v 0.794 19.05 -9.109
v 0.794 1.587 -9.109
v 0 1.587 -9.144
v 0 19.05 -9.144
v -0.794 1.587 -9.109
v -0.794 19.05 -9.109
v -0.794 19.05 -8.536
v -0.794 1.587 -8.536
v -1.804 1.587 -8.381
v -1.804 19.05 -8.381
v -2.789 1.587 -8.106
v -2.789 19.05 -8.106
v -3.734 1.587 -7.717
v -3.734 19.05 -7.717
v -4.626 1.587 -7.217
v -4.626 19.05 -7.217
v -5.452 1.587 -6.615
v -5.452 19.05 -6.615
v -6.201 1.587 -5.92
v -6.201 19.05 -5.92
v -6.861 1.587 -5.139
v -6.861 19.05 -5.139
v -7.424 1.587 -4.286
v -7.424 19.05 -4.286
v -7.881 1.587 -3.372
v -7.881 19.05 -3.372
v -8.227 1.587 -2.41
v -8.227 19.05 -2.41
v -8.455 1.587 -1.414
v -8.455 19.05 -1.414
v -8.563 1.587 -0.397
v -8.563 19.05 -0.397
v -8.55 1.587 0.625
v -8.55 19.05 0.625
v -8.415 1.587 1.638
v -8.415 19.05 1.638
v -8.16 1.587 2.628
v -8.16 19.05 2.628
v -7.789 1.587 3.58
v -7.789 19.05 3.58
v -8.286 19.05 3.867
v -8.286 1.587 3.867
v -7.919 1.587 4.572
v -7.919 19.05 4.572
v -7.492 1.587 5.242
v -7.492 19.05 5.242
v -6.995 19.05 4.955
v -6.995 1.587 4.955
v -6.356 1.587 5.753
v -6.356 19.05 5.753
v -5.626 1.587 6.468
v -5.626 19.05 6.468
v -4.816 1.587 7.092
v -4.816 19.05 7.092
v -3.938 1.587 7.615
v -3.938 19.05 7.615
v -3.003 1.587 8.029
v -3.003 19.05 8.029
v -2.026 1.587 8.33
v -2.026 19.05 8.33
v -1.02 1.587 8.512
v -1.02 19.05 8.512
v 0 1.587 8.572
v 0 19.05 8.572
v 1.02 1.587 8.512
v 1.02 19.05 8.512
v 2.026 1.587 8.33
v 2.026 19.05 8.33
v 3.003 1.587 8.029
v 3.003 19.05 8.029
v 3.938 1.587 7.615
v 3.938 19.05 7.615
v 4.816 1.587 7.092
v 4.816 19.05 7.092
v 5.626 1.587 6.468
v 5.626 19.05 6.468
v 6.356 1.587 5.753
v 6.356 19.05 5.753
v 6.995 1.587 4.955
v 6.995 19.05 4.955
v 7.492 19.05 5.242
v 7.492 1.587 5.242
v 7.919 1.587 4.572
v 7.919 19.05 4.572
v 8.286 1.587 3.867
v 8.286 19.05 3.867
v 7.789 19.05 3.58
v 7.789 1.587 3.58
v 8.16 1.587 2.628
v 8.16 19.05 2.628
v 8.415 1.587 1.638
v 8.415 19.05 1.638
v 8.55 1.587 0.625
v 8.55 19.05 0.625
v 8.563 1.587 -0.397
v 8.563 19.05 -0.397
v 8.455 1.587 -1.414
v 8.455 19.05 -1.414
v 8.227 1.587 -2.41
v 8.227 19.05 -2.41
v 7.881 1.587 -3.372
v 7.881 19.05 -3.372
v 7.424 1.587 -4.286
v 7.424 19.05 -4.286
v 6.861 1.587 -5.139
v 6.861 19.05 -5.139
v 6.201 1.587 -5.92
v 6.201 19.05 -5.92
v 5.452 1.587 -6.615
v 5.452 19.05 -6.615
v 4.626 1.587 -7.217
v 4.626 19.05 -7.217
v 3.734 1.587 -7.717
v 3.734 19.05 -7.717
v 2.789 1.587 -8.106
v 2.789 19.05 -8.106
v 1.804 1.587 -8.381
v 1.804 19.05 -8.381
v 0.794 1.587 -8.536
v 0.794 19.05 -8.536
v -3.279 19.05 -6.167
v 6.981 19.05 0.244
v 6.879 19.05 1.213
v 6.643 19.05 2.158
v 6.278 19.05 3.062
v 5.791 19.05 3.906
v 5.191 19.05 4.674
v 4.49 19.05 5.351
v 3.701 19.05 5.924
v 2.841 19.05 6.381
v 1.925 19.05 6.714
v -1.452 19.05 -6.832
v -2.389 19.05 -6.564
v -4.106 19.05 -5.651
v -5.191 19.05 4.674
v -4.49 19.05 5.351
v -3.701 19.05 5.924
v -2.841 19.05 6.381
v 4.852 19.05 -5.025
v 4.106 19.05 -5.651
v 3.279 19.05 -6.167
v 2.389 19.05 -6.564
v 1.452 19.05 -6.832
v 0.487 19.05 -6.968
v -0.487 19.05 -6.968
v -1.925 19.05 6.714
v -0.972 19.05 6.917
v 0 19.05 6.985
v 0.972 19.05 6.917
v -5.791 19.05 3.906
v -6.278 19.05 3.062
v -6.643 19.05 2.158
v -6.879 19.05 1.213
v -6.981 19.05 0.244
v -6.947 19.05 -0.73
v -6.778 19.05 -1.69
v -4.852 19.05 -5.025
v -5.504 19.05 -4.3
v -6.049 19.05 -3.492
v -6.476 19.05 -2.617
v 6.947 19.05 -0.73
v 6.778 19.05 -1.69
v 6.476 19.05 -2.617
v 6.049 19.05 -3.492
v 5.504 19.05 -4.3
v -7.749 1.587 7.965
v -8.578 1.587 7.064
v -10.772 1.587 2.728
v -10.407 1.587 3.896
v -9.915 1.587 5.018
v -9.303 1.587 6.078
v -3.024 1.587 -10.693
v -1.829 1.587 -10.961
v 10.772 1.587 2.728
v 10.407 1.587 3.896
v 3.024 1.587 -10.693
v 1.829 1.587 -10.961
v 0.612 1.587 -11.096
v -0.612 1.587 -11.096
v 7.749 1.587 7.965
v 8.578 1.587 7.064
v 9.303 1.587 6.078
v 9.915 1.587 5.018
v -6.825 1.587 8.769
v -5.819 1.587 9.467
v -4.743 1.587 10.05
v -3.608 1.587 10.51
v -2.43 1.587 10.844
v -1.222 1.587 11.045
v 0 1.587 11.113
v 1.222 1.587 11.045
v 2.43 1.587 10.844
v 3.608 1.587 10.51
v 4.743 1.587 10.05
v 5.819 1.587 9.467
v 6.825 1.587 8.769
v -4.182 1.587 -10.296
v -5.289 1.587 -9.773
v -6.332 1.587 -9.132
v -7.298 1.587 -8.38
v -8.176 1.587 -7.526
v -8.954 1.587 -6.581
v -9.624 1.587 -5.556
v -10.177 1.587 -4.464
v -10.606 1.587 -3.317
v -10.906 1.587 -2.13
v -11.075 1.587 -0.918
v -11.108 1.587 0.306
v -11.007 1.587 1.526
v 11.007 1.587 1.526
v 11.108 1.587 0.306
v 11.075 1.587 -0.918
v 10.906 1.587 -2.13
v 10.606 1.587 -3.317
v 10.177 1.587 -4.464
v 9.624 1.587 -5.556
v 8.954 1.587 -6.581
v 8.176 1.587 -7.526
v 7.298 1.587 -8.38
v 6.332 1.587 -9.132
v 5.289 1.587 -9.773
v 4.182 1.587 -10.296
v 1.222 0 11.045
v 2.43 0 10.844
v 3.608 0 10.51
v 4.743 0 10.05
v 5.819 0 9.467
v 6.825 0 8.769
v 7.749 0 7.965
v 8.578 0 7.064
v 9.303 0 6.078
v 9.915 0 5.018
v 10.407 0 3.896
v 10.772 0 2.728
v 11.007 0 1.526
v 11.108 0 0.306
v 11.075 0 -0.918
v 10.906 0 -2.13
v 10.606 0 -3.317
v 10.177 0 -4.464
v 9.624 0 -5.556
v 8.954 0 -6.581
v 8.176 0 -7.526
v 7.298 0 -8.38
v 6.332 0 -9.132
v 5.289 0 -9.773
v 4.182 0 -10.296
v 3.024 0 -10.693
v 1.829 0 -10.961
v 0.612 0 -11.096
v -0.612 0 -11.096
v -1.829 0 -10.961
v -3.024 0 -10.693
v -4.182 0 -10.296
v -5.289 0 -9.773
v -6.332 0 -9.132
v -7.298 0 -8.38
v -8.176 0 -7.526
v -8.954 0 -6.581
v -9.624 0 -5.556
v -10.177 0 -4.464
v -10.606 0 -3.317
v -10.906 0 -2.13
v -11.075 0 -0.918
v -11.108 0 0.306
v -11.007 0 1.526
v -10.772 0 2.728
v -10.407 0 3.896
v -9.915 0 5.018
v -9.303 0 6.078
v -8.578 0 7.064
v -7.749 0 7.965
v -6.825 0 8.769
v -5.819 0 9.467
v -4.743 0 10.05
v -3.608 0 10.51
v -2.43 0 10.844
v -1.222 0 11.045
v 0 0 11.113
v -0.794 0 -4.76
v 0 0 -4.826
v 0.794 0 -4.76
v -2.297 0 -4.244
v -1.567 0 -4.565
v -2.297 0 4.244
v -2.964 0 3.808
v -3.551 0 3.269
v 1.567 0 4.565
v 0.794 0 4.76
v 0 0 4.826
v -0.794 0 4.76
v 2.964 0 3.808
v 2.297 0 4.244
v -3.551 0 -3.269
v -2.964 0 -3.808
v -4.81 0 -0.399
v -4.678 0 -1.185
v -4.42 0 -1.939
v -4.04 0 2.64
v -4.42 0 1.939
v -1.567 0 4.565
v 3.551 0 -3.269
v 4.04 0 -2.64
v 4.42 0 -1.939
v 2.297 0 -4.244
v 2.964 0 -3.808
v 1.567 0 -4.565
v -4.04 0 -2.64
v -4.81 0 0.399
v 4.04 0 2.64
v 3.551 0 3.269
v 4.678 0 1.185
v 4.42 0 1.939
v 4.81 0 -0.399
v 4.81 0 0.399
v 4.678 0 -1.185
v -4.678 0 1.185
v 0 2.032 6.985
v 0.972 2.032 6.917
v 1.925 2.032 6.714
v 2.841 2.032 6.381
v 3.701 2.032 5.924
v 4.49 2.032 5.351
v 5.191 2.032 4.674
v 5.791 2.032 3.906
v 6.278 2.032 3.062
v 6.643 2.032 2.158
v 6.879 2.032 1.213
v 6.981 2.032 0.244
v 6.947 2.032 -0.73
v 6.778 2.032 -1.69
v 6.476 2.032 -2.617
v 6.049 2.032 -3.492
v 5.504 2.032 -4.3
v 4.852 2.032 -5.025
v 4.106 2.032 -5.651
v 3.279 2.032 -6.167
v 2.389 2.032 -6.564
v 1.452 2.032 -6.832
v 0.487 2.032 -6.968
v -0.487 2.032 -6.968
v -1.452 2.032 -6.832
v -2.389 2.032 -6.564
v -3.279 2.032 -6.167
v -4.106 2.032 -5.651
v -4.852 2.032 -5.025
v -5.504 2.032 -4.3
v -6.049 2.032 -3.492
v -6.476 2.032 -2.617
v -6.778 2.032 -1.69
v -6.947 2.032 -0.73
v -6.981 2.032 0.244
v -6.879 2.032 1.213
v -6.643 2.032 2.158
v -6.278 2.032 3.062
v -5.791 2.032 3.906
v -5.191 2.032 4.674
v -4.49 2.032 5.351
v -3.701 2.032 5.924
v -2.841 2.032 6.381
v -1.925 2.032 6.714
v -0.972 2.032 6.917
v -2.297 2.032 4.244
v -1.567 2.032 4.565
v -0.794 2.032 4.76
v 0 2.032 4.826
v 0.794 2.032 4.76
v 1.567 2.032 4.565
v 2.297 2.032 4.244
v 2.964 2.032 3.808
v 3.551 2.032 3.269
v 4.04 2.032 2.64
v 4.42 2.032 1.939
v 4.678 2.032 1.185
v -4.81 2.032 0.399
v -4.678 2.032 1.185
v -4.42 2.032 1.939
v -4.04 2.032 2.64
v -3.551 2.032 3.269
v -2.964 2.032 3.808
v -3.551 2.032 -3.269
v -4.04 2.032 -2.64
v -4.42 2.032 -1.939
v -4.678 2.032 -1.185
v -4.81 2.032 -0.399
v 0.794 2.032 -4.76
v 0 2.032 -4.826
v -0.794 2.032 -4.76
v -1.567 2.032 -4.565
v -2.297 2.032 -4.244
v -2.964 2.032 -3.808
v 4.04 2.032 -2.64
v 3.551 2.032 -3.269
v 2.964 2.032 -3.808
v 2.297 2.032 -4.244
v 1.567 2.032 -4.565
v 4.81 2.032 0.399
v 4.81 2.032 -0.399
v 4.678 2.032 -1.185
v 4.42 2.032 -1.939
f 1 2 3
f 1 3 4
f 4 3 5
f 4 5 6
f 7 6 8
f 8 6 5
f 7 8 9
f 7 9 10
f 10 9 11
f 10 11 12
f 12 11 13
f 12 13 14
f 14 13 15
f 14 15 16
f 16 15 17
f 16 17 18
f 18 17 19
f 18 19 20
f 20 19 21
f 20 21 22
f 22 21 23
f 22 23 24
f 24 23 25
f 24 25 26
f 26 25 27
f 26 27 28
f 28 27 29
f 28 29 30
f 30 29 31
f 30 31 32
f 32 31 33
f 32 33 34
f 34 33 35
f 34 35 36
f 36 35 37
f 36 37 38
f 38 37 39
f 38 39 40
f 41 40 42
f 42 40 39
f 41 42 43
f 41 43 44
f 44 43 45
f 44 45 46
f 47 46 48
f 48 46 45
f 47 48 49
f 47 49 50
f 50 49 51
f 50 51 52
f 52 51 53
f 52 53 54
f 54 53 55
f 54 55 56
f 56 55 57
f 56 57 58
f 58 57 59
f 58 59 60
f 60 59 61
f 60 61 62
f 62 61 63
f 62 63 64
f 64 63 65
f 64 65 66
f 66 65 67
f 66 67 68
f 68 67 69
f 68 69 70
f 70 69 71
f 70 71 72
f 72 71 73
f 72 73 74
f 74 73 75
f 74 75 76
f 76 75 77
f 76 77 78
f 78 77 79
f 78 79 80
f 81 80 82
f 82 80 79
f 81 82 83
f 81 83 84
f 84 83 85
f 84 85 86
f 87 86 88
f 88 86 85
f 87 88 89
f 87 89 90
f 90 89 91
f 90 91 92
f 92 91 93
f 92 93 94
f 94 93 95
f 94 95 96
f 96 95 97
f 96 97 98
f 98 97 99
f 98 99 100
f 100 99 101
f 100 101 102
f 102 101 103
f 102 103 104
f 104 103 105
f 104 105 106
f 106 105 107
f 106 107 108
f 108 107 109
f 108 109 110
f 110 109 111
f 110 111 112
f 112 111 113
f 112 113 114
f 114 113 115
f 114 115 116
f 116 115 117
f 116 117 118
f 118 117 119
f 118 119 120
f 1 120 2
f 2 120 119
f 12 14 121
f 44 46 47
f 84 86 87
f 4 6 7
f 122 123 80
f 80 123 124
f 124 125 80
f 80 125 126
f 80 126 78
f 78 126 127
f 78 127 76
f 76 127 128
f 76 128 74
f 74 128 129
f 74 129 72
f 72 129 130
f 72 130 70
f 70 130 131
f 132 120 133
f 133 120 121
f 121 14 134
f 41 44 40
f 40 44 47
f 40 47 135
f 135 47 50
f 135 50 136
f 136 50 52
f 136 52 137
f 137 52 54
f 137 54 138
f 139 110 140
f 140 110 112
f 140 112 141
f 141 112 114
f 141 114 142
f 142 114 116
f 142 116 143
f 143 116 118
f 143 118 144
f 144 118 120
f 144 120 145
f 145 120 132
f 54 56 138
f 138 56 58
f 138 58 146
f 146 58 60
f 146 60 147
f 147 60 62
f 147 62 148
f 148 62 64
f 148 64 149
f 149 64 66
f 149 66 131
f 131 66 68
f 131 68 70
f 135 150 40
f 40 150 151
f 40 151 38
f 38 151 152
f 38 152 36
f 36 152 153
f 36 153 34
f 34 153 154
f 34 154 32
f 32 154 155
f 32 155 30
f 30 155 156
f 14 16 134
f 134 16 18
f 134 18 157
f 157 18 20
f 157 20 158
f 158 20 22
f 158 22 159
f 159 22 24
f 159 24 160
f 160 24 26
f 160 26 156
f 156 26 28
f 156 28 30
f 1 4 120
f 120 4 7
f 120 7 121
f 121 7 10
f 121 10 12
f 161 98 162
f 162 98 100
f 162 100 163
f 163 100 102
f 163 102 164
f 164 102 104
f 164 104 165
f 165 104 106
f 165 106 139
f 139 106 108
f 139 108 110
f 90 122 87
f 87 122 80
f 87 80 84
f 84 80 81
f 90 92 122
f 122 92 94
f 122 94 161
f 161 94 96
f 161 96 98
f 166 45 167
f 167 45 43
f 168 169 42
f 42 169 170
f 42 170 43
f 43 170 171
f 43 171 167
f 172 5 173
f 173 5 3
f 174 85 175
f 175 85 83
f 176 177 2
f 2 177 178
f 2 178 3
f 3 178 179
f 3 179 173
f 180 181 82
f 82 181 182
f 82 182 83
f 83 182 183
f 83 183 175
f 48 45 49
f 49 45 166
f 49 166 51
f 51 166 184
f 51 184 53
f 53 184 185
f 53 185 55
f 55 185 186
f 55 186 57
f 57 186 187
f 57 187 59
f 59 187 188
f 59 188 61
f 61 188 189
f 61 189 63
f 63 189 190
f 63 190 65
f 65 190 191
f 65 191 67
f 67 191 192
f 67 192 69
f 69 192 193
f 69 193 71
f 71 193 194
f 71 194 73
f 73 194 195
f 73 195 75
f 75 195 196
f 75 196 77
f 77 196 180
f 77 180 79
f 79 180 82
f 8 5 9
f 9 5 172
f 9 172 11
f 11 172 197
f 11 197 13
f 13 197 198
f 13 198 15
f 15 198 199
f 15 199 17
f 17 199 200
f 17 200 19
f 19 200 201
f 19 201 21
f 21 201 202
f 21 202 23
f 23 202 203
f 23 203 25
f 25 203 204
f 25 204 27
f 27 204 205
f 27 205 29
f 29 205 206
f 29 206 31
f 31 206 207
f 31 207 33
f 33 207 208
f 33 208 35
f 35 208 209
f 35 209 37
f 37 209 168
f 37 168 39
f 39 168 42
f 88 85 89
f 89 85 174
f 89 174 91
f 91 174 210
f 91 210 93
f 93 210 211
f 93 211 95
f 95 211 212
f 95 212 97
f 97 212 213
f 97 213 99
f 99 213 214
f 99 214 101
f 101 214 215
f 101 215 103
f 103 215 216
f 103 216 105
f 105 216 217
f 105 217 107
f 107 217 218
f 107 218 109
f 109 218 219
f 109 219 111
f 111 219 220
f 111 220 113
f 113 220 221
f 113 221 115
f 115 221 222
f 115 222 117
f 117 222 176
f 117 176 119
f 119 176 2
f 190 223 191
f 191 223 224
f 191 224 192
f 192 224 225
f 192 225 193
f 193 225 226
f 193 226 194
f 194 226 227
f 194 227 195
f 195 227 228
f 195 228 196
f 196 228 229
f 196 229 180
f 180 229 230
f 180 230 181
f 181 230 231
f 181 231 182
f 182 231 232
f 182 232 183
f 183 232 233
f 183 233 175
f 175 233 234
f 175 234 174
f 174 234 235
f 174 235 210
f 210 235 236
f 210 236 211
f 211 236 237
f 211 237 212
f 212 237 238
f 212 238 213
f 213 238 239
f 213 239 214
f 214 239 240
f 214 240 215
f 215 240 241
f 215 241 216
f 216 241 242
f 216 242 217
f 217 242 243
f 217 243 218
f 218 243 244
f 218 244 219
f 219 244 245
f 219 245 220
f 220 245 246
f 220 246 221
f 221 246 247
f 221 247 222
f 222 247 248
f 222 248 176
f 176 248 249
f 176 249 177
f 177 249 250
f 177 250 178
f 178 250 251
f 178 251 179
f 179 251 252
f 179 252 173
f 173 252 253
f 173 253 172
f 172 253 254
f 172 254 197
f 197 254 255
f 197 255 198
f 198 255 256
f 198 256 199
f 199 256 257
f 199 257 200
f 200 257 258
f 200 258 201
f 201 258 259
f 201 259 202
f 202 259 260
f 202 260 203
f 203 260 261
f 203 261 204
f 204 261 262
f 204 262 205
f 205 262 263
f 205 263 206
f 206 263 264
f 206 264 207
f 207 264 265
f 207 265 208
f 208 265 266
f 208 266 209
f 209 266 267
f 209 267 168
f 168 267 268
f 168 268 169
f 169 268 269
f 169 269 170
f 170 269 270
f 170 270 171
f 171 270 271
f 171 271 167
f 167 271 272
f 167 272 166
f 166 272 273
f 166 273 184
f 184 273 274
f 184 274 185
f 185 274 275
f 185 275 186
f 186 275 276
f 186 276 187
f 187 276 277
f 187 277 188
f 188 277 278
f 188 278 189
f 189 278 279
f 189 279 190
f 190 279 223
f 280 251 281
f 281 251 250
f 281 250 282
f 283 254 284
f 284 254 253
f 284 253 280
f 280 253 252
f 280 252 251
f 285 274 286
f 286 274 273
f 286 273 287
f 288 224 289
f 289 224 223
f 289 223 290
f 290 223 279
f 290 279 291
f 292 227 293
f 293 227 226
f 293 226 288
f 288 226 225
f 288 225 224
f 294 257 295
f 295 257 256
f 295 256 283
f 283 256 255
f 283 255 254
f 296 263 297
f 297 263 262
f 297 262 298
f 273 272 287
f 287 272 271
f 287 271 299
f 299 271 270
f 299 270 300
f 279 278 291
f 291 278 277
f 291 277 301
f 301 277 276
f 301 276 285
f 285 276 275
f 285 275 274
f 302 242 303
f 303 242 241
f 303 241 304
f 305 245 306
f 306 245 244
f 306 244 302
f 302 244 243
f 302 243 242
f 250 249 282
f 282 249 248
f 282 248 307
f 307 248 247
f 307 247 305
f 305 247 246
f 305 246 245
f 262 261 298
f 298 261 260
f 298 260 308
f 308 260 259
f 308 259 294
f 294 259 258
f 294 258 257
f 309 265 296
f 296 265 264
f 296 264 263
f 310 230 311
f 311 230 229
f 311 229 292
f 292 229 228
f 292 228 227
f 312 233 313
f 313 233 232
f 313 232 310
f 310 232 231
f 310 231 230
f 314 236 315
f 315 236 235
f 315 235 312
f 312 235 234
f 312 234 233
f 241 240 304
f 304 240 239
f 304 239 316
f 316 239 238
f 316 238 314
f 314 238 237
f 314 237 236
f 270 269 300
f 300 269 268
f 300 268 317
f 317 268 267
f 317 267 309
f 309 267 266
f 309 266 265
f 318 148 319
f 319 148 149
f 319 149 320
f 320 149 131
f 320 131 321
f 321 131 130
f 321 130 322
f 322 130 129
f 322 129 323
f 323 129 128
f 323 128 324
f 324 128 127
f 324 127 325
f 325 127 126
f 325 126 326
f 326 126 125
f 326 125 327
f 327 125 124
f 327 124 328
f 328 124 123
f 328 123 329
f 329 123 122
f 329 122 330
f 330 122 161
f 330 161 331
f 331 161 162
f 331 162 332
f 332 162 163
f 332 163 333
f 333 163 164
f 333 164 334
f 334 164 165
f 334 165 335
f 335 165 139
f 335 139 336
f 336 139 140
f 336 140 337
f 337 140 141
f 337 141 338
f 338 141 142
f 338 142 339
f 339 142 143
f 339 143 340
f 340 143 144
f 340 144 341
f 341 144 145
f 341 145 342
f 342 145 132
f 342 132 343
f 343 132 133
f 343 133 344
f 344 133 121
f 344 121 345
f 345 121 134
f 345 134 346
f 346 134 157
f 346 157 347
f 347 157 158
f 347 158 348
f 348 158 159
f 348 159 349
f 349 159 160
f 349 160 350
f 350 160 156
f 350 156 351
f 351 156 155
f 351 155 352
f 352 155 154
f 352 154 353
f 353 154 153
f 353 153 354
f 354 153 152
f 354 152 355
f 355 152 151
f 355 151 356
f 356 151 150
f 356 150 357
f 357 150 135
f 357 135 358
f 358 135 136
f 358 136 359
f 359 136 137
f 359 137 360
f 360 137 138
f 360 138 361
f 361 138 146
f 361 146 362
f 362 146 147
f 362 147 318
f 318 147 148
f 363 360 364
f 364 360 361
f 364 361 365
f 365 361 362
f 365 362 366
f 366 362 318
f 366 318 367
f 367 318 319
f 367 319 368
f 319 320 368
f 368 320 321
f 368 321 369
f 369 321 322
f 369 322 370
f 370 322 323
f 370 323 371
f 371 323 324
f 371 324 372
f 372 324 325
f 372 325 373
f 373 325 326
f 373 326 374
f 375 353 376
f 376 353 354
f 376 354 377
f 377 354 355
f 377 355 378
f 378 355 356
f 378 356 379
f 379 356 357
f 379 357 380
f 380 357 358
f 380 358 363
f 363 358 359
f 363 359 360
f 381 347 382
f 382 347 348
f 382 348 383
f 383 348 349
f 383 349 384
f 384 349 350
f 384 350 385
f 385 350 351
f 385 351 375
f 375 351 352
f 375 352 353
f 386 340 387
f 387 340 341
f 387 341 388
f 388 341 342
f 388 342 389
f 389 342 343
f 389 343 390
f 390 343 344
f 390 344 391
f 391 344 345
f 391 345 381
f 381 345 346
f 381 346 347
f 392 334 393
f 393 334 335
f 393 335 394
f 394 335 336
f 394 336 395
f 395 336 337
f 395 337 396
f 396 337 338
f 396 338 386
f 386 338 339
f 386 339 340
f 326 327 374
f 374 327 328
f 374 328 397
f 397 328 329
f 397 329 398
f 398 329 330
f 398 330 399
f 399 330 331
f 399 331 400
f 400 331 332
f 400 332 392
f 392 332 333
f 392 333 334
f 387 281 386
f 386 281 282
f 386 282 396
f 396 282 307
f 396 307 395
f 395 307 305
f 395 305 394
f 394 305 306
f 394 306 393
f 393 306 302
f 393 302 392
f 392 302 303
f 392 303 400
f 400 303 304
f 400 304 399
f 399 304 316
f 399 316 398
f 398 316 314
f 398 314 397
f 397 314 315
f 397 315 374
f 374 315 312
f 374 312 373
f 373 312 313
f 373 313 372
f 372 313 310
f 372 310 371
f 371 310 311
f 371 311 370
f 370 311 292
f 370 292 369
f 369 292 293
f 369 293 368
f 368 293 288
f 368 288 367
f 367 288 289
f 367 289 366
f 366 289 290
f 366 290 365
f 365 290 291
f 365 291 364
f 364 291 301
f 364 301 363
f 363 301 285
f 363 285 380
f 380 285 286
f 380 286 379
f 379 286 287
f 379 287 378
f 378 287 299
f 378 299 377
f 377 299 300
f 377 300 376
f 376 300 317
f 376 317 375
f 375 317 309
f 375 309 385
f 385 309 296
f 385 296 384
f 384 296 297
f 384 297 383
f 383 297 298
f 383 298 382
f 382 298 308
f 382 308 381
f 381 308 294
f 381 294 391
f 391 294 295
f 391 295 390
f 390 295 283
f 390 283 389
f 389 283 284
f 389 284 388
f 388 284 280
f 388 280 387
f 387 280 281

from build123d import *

# Parameters (mm, degrees)
BOSS_EXTRUDE1_DEPTH = 19.05
SKETCH6_W           = 0.608326788
SKETCH6_H           = 1.5875
SKETCH8_W           = 2.576826788
SKETCH8_H           = 1.5875
SKETCH12_R          = 6.985
CUT_EXTRUDE7_DEPTH  = 17.018
SKETCH13_R          = 4.826
CUT_EXTRUDE8_DEPTH  = 20.05


with BuildPart() as part:
    # Sketch1 → Boss-Extrude1 (new body)
    with BuildSketch(Plane(origin=(0, 0, 0), x_dir=(1, 0, 0), z_dir=(0, 1, 0))):
        with BuildLine():
            Line((-0.79375, 9.109483901), (-0.79375, 8.535673212))
            ThreePointArc((-0.79375, 8.535673212), (-7.424002774, 4.28625), (-7.78898484, -3.580428942))
            Line((-7.78898484, -3.580428942), (-8.285919473, -3.867334286))
            ThreePointArc((-8.285919473, -3.867334286), (-7.918936292, -4.572), (-7.492169473, -5.242149615))
            Line((-7.492169473, -5.242149615), (-6.99523484, -4.95524427))
            ThreePointArc((-6.99523484, -4.95524427), (0, -8.5725), (6.99523484, -4.95524427))
            Line((6.99523484, -4.95524427), (7.492169473, -5.242149615))
            ThreePointArc((7.492169473, -5.242149615), (7.918936292, -4.572), (8.285919473, -3.867334286))
            Line((8.285919473, -3.867334286), (7.78898484, -3.580428942))
            ThreePointArc((7.78898484, -3.580428942), (7.424002774, 4.28625), (0.79375, 8.535673212))
            Line((0.79375, 8.535673212), (0.79375, 9.109483901))
            ThreePointArc((0.79375, 9.109483901), (0, 9.144), (-0.79375, 9.109483901))
        make_face()
    extrude(amount=BOSS_EXTRUDE1_DEPTH)

    # Sketch6 → Cut-Revolve2 (revolve, cut)
    with BuildSketch(Plane(origin=(0, 0, 0), x_dir=(0, 0, -1), z_dir=(1, 0, 0))):
        with Locations((8.839836606, 0.79375)):
            Rectangle(SKETCH6_W, SKETCH6_H)
    revolve(axis=Axis((0, 19.730213777, 0), (0, -1, 0)), mode=Mode.SUBTRACT)

    # Sketch8 → Revolve2 (revolve)
    with BuildSketch(Plane(origin=(0, 0, 0), x_dir=(0, 0, -1), z_dir=(1, 0, 0))):
        with Locations((9.824086606, 0.79375)):
            Rectangle(SKETCH8_W, SKETCH8_H)
    revolve(axis=Axis((0, 4.48386458, 0), (0, -1, 0)))

    # Sketch12 → Cut-Extrude7 (cut)
    with BuildSketch(Plane(origin=(0, 19.05, 0), x_dir=(1, 0, 0), z_dir=(0, 1, 0))):
        Circle(SKETCH12_R)
    extrude(amount=-CUT_EXTRUDE7_DEPTH, mode=Mode.SUBTRACT)

    # Sketch13 → Cut-Extrude8 (cut, through all)
    with BuildSketch(Plane.XZ):
        Circle(SKETCH13_R)
    extrude(amount=-CUT_EXTRUDE8_DEPTH, mode=Mode.SUBTRACT)


solid = part.part
